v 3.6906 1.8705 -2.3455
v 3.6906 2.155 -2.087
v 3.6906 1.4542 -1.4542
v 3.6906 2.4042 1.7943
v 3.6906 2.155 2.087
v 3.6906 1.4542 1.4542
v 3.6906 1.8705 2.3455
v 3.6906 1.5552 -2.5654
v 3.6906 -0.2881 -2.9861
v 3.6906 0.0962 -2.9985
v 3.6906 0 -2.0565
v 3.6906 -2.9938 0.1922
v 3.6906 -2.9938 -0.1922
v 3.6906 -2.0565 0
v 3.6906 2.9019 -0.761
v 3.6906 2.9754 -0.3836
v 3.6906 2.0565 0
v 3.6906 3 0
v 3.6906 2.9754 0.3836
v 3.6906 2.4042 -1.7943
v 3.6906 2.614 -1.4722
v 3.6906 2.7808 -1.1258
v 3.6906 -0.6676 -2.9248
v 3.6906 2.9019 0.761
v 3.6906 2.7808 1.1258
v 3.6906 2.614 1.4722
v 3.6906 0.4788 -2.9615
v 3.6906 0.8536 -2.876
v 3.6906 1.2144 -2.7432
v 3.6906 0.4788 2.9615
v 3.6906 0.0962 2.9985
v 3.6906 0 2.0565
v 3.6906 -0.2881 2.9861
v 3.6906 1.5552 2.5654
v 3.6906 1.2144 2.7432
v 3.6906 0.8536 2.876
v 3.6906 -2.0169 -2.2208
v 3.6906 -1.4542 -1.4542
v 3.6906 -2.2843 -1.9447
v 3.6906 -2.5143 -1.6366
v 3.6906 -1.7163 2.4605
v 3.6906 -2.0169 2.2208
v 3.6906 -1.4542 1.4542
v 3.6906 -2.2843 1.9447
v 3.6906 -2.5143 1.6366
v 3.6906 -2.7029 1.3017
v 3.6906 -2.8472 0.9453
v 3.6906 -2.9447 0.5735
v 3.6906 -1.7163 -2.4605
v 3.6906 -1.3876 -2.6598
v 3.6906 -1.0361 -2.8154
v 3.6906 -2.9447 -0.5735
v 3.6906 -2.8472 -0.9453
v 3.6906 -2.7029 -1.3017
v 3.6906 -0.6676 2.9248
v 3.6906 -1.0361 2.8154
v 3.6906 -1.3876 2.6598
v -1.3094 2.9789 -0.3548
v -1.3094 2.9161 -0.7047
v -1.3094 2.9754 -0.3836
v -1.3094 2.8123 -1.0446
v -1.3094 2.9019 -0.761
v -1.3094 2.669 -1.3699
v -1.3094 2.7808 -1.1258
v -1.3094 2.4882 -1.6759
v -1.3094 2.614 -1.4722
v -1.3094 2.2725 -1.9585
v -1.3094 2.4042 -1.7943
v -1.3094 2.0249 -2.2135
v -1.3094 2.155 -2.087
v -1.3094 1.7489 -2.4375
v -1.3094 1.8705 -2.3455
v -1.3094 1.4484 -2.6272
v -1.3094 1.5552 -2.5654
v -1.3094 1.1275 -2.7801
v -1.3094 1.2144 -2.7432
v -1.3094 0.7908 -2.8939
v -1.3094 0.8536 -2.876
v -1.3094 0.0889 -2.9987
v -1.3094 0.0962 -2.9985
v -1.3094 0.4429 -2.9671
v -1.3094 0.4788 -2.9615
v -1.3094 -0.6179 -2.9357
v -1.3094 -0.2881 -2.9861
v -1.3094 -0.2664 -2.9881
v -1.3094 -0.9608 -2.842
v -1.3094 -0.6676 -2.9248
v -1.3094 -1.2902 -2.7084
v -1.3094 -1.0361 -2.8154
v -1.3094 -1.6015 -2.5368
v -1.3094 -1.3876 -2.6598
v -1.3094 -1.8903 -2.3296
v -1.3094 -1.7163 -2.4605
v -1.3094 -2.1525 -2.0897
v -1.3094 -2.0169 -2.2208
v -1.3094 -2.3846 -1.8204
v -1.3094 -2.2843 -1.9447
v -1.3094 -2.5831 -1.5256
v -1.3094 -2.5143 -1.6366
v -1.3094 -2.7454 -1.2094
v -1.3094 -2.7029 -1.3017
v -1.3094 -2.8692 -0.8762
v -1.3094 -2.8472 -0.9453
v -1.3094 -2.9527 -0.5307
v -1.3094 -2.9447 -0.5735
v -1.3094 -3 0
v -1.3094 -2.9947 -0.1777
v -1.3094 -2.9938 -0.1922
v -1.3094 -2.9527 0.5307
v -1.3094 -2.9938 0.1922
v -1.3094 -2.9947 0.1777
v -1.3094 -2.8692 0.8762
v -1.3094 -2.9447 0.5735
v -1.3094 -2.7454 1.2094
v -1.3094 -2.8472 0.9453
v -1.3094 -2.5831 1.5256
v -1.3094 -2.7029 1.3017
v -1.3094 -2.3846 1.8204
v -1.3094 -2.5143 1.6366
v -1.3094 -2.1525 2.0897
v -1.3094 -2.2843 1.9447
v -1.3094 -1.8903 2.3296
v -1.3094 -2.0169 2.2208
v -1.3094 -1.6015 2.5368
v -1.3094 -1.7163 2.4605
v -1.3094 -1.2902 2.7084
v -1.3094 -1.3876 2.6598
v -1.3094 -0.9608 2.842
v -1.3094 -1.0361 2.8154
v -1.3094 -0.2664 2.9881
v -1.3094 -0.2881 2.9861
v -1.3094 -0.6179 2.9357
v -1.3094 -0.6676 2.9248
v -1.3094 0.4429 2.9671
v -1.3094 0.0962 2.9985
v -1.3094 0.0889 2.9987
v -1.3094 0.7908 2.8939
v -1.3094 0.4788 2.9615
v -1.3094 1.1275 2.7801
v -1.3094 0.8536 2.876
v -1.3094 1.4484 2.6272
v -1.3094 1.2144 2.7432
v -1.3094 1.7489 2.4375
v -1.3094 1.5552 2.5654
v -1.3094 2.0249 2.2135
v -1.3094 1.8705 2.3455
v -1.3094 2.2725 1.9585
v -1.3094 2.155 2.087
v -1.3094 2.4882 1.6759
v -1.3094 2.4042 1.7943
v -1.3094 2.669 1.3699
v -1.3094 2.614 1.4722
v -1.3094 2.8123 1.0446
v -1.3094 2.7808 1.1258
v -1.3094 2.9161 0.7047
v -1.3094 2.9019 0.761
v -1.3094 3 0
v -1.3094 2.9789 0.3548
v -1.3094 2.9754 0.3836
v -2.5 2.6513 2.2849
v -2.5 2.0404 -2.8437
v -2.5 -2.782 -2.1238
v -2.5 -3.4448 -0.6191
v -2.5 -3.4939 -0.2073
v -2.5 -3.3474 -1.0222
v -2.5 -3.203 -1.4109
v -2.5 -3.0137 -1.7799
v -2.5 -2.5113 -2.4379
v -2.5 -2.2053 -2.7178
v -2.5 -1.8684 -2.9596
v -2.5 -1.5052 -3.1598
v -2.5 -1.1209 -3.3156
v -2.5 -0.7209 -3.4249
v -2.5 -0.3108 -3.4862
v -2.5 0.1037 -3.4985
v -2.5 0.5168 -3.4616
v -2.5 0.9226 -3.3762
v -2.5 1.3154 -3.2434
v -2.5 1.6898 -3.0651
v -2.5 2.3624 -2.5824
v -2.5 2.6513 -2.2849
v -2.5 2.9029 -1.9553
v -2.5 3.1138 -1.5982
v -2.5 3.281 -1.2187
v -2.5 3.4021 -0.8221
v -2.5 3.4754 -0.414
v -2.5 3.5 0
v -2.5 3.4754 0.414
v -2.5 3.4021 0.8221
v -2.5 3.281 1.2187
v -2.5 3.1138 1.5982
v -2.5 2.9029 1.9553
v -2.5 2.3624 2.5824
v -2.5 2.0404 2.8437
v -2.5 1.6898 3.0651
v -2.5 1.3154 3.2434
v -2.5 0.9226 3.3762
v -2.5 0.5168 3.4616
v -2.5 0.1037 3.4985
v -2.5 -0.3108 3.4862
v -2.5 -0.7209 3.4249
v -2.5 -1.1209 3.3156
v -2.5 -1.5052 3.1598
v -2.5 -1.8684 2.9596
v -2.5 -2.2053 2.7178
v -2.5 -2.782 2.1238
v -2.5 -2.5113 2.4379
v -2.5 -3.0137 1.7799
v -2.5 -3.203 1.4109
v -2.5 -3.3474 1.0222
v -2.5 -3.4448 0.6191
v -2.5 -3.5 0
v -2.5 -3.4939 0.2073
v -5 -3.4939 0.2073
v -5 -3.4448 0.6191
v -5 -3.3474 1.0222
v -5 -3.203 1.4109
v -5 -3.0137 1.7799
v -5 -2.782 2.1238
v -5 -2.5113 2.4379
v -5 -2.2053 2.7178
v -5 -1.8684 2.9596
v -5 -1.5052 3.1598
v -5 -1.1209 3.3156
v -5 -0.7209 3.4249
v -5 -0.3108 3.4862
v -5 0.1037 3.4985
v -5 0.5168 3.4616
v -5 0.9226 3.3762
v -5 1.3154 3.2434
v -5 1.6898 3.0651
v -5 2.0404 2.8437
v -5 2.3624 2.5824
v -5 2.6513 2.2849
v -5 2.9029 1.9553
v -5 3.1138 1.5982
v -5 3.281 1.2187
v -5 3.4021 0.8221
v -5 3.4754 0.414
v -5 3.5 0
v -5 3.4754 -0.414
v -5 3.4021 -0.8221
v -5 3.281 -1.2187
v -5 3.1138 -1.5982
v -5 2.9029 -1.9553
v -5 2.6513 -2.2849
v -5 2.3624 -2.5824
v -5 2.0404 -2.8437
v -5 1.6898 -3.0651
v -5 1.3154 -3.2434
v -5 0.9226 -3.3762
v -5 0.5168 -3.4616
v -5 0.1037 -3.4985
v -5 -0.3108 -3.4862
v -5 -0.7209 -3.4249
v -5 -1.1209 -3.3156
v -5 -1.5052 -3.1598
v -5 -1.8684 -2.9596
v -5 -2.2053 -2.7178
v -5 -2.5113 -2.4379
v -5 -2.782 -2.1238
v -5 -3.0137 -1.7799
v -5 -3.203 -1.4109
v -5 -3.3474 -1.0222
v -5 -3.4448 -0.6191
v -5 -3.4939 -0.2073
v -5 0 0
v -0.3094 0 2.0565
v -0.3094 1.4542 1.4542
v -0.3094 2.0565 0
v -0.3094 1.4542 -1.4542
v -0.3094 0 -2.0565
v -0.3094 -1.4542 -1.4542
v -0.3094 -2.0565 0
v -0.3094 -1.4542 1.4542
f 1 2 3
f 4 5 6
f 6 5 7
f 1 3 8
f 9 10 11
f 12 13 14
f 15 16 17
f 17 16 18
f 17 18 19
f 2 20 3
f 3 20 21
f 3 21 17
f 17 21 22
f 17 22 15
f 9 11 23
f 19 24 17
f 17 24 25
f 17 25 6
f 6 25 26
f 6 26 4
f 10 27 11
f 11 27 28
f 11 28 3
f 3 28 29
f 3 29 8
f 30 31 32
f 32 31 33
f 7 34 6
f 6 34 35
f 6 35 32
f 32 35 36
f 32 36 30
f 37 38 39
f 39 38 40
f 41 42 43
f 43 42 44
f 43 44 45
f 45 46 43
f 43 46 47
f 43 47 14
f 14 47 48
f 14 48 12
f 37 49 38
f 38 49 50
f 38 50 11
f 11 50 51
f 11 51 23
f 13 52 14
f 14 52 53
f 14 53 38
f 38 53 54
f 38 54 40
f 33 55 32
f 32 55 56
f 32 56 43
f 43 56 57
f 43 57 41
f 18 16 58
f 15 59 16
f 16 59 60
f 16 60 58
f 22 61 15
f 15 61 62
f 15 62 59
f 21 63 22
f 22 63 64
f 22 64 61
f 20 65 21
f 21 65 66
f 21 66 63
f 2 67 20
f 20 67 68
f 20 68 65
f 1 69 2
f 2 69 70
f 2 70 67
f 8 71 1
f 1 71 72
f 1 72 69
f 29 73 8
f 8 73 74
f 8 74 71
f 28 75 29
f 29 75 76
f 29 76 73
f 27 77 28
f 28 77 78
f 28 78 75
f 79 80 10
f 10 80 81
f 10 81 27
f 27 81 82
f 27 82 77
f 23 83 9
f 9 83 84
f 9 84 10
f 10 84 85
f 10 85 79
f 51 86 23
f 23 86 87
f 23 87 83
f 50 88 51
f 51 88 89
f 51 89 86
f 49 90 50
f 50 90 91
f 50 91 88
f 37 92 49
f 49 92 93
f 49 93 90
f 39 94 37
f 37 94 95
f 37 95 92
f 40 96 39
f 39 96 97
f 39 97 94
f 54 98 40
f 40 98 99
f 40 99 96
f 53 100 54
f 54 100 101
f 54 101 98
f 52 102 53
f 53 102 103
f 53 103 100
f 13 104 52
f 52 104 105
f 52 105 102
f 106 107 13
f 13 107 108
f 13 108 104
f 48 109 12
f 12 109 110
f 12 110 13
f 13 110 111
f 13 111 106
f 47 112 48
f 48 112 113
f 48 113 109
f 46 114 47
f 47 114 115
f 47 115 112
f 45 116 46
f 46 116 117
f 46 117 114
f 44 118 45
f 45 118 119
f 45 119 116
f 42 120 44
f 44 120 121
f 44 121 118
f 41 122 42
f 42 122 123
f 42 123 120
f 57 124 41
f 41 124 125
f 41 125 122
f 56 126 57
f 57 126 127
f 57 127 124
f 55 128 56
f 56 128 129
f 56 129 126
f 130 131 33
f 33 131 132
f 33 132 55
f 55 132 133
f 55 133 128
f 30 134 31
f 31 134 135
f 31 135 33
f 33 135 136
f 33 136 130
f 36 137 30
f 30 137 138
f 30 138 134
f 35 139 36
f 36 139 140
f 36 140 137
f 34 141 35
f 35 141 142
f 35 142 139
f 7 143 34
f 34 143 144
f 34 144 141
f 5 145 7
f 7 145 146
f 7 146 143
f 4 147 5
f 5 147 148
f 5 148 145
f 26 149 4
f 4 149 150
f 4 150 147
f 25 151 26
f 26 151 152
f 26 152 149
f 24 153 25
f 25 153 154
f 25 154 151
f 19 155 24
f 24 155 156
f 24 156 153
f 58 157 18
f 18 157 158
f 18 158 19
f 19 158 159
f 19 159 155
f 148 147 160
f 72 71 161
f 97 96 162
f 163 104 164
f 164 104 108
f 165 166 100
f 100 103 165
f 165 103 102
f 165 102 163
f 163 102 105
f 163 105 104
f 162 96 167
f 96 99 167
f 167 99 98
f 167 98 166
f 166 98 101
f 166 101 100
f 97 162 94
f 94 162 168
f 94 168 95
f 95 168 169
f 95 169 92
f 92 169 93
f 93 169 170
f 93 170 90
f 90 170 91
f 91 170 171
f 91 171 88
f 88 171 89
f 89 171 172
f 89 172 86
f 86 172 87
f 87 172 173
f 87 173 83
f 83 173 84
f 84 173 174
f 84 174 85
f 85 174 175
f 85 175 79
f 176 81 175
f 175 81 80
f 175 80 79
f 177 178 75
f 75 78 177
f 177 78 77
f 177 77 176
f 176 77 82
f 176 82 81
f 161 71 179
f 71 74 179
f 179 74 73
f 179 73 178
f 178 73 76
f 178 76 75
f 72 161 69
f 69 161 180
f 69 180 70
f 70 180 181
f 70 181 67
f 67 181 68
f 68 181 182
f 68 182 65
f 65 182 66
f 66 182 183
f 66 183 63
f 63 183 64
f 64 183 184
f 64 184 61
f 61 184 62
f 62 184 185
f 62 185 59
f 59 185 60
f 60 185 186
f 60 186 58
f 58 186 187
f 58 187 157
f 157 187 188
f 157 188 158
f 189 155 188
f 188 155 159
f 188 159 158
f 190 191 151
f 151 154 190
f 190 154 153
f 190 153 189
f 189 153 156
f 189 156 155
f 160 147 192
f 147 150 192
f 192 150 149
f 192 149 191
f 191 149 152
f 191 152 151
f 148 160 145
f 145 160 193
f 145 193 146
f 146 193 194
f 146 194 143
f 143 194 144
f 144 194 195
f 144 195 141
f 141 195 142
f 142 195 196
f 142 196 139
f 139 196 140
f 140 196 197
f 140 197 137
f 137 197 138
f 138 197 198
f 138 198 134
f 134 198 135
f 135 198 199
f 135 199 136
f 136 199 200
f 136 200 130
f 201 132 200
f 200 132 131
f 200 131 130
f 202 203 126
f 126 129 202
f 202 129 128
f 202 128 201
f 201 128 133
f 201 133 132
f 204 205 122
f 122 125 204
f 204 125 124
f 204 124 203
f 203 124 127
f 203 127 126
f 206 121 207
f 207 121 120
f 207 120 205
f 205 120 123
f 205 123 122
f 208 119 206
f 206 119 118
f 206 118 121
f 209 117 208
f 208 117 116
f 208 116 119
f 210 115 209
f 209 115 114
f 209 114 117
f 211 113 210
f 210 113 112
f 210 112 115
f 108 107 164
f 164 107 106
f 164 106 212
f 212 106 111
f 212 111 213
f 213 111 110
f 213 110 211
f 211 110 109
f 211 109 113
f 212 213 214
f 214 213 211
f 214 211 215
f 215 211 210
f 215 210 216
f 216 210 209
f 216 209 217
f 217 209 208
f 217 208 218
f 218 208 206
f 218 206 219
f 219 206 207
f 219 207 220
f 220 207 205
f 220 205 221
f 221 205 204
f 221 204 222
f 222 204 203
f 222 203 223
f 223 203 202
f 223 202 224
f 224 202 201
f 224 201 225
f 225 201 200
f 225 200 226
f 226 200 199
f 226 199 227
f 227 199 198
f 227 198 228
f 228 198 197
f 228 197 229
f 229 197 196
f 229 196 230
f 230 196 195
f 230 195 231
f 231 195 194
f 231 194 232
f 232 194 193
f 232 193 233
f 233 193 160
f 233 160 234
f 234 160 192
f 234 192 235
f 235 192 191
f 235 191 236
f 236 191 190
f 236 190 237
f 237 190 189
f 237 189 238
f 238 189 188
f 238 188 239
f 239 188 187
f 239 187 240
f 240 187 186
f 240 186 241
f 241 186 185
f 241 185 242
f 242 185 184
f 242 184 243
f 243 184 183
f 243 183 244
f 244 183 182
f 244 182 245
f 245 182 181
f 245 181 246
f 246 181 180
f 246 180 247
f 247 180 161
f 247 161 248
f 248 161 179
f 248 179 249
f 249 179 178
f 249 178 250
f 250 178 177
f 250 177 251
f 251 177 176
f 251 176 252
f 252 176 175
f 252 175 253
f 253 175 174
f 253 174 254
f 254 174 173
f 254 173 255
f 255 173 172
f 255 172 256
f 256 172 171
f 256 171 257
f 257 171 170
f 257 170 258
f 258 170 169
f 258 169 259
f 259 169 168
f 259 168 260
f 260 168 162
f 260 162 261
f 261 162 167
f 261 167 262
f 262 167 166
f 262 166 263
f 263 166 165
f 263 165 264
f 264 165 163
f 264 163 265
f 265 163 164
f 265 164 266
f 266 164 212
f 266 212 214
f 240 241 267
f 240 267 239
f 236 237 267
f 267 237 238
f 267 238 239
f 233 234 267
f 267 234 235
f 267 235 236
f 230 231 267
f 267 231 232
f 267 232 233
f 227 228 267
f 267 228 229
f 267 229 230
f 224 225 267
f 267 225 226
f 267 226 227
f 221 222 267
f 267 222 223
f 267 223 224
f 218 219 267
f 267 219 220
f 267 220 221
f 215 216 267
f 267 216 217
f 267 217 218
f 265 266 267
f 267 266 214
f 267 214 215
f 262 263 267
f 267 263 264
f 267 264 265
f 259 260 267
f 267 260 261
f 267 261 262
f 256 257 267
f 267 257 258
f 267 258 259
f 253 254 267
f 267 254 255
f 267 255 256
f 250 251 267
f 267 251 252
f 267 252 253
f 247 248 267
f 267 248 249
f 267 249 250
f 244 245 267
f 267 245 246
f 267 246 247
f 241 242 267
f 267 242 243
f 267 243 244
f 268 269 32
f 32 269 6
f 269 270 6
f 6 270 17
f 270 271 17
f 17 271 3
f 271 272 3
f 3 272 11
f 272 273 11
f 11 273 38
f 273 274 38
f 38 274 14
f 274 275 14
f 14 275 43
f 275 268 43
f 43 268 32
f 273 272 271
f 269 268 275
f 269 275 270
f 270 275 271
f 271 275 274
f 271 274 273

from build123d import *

# Parameters (mm, degrees)
CUT_EXTRUDE2_DEPTH = 4


with BuildPart() as part:
    # Sketch4 → Revolve4 (revolve)
    with BuildSketch(Plane.XY):
        Polygon((-5, 0), (0, 0), (3.690598923, 0), (3.690598923, 3), (0, 3), (-1.309401077, 3), (-2.5, 3.5), (-5, 3.5), align=None)
    revolve(axis=Axis((0, 0, 0), (-1, 0, 0)))

    # Sketch6 → Cut-Extrude2 (cut)
    with BuildSketch(Plane(origin=(3.690598923, 0, 0), x_dir=(0, 0, -1), z_dir=(1, 0, 0))):
        Polygon((-2.056545181, 0), (-1.454197043, -1.454197043), (0, -2.056545181), (1.454197043, -1.454197043), (2.056545181, 0), (1.454197043, 1.454197043), (0, 2.056545181), (-1.454197043, 1.454197043), align=None)
    extrude(amount=-CUT_EXTRUDE2_DEPTH, mode=Mode.SUBTRACT)


solid = part.part
